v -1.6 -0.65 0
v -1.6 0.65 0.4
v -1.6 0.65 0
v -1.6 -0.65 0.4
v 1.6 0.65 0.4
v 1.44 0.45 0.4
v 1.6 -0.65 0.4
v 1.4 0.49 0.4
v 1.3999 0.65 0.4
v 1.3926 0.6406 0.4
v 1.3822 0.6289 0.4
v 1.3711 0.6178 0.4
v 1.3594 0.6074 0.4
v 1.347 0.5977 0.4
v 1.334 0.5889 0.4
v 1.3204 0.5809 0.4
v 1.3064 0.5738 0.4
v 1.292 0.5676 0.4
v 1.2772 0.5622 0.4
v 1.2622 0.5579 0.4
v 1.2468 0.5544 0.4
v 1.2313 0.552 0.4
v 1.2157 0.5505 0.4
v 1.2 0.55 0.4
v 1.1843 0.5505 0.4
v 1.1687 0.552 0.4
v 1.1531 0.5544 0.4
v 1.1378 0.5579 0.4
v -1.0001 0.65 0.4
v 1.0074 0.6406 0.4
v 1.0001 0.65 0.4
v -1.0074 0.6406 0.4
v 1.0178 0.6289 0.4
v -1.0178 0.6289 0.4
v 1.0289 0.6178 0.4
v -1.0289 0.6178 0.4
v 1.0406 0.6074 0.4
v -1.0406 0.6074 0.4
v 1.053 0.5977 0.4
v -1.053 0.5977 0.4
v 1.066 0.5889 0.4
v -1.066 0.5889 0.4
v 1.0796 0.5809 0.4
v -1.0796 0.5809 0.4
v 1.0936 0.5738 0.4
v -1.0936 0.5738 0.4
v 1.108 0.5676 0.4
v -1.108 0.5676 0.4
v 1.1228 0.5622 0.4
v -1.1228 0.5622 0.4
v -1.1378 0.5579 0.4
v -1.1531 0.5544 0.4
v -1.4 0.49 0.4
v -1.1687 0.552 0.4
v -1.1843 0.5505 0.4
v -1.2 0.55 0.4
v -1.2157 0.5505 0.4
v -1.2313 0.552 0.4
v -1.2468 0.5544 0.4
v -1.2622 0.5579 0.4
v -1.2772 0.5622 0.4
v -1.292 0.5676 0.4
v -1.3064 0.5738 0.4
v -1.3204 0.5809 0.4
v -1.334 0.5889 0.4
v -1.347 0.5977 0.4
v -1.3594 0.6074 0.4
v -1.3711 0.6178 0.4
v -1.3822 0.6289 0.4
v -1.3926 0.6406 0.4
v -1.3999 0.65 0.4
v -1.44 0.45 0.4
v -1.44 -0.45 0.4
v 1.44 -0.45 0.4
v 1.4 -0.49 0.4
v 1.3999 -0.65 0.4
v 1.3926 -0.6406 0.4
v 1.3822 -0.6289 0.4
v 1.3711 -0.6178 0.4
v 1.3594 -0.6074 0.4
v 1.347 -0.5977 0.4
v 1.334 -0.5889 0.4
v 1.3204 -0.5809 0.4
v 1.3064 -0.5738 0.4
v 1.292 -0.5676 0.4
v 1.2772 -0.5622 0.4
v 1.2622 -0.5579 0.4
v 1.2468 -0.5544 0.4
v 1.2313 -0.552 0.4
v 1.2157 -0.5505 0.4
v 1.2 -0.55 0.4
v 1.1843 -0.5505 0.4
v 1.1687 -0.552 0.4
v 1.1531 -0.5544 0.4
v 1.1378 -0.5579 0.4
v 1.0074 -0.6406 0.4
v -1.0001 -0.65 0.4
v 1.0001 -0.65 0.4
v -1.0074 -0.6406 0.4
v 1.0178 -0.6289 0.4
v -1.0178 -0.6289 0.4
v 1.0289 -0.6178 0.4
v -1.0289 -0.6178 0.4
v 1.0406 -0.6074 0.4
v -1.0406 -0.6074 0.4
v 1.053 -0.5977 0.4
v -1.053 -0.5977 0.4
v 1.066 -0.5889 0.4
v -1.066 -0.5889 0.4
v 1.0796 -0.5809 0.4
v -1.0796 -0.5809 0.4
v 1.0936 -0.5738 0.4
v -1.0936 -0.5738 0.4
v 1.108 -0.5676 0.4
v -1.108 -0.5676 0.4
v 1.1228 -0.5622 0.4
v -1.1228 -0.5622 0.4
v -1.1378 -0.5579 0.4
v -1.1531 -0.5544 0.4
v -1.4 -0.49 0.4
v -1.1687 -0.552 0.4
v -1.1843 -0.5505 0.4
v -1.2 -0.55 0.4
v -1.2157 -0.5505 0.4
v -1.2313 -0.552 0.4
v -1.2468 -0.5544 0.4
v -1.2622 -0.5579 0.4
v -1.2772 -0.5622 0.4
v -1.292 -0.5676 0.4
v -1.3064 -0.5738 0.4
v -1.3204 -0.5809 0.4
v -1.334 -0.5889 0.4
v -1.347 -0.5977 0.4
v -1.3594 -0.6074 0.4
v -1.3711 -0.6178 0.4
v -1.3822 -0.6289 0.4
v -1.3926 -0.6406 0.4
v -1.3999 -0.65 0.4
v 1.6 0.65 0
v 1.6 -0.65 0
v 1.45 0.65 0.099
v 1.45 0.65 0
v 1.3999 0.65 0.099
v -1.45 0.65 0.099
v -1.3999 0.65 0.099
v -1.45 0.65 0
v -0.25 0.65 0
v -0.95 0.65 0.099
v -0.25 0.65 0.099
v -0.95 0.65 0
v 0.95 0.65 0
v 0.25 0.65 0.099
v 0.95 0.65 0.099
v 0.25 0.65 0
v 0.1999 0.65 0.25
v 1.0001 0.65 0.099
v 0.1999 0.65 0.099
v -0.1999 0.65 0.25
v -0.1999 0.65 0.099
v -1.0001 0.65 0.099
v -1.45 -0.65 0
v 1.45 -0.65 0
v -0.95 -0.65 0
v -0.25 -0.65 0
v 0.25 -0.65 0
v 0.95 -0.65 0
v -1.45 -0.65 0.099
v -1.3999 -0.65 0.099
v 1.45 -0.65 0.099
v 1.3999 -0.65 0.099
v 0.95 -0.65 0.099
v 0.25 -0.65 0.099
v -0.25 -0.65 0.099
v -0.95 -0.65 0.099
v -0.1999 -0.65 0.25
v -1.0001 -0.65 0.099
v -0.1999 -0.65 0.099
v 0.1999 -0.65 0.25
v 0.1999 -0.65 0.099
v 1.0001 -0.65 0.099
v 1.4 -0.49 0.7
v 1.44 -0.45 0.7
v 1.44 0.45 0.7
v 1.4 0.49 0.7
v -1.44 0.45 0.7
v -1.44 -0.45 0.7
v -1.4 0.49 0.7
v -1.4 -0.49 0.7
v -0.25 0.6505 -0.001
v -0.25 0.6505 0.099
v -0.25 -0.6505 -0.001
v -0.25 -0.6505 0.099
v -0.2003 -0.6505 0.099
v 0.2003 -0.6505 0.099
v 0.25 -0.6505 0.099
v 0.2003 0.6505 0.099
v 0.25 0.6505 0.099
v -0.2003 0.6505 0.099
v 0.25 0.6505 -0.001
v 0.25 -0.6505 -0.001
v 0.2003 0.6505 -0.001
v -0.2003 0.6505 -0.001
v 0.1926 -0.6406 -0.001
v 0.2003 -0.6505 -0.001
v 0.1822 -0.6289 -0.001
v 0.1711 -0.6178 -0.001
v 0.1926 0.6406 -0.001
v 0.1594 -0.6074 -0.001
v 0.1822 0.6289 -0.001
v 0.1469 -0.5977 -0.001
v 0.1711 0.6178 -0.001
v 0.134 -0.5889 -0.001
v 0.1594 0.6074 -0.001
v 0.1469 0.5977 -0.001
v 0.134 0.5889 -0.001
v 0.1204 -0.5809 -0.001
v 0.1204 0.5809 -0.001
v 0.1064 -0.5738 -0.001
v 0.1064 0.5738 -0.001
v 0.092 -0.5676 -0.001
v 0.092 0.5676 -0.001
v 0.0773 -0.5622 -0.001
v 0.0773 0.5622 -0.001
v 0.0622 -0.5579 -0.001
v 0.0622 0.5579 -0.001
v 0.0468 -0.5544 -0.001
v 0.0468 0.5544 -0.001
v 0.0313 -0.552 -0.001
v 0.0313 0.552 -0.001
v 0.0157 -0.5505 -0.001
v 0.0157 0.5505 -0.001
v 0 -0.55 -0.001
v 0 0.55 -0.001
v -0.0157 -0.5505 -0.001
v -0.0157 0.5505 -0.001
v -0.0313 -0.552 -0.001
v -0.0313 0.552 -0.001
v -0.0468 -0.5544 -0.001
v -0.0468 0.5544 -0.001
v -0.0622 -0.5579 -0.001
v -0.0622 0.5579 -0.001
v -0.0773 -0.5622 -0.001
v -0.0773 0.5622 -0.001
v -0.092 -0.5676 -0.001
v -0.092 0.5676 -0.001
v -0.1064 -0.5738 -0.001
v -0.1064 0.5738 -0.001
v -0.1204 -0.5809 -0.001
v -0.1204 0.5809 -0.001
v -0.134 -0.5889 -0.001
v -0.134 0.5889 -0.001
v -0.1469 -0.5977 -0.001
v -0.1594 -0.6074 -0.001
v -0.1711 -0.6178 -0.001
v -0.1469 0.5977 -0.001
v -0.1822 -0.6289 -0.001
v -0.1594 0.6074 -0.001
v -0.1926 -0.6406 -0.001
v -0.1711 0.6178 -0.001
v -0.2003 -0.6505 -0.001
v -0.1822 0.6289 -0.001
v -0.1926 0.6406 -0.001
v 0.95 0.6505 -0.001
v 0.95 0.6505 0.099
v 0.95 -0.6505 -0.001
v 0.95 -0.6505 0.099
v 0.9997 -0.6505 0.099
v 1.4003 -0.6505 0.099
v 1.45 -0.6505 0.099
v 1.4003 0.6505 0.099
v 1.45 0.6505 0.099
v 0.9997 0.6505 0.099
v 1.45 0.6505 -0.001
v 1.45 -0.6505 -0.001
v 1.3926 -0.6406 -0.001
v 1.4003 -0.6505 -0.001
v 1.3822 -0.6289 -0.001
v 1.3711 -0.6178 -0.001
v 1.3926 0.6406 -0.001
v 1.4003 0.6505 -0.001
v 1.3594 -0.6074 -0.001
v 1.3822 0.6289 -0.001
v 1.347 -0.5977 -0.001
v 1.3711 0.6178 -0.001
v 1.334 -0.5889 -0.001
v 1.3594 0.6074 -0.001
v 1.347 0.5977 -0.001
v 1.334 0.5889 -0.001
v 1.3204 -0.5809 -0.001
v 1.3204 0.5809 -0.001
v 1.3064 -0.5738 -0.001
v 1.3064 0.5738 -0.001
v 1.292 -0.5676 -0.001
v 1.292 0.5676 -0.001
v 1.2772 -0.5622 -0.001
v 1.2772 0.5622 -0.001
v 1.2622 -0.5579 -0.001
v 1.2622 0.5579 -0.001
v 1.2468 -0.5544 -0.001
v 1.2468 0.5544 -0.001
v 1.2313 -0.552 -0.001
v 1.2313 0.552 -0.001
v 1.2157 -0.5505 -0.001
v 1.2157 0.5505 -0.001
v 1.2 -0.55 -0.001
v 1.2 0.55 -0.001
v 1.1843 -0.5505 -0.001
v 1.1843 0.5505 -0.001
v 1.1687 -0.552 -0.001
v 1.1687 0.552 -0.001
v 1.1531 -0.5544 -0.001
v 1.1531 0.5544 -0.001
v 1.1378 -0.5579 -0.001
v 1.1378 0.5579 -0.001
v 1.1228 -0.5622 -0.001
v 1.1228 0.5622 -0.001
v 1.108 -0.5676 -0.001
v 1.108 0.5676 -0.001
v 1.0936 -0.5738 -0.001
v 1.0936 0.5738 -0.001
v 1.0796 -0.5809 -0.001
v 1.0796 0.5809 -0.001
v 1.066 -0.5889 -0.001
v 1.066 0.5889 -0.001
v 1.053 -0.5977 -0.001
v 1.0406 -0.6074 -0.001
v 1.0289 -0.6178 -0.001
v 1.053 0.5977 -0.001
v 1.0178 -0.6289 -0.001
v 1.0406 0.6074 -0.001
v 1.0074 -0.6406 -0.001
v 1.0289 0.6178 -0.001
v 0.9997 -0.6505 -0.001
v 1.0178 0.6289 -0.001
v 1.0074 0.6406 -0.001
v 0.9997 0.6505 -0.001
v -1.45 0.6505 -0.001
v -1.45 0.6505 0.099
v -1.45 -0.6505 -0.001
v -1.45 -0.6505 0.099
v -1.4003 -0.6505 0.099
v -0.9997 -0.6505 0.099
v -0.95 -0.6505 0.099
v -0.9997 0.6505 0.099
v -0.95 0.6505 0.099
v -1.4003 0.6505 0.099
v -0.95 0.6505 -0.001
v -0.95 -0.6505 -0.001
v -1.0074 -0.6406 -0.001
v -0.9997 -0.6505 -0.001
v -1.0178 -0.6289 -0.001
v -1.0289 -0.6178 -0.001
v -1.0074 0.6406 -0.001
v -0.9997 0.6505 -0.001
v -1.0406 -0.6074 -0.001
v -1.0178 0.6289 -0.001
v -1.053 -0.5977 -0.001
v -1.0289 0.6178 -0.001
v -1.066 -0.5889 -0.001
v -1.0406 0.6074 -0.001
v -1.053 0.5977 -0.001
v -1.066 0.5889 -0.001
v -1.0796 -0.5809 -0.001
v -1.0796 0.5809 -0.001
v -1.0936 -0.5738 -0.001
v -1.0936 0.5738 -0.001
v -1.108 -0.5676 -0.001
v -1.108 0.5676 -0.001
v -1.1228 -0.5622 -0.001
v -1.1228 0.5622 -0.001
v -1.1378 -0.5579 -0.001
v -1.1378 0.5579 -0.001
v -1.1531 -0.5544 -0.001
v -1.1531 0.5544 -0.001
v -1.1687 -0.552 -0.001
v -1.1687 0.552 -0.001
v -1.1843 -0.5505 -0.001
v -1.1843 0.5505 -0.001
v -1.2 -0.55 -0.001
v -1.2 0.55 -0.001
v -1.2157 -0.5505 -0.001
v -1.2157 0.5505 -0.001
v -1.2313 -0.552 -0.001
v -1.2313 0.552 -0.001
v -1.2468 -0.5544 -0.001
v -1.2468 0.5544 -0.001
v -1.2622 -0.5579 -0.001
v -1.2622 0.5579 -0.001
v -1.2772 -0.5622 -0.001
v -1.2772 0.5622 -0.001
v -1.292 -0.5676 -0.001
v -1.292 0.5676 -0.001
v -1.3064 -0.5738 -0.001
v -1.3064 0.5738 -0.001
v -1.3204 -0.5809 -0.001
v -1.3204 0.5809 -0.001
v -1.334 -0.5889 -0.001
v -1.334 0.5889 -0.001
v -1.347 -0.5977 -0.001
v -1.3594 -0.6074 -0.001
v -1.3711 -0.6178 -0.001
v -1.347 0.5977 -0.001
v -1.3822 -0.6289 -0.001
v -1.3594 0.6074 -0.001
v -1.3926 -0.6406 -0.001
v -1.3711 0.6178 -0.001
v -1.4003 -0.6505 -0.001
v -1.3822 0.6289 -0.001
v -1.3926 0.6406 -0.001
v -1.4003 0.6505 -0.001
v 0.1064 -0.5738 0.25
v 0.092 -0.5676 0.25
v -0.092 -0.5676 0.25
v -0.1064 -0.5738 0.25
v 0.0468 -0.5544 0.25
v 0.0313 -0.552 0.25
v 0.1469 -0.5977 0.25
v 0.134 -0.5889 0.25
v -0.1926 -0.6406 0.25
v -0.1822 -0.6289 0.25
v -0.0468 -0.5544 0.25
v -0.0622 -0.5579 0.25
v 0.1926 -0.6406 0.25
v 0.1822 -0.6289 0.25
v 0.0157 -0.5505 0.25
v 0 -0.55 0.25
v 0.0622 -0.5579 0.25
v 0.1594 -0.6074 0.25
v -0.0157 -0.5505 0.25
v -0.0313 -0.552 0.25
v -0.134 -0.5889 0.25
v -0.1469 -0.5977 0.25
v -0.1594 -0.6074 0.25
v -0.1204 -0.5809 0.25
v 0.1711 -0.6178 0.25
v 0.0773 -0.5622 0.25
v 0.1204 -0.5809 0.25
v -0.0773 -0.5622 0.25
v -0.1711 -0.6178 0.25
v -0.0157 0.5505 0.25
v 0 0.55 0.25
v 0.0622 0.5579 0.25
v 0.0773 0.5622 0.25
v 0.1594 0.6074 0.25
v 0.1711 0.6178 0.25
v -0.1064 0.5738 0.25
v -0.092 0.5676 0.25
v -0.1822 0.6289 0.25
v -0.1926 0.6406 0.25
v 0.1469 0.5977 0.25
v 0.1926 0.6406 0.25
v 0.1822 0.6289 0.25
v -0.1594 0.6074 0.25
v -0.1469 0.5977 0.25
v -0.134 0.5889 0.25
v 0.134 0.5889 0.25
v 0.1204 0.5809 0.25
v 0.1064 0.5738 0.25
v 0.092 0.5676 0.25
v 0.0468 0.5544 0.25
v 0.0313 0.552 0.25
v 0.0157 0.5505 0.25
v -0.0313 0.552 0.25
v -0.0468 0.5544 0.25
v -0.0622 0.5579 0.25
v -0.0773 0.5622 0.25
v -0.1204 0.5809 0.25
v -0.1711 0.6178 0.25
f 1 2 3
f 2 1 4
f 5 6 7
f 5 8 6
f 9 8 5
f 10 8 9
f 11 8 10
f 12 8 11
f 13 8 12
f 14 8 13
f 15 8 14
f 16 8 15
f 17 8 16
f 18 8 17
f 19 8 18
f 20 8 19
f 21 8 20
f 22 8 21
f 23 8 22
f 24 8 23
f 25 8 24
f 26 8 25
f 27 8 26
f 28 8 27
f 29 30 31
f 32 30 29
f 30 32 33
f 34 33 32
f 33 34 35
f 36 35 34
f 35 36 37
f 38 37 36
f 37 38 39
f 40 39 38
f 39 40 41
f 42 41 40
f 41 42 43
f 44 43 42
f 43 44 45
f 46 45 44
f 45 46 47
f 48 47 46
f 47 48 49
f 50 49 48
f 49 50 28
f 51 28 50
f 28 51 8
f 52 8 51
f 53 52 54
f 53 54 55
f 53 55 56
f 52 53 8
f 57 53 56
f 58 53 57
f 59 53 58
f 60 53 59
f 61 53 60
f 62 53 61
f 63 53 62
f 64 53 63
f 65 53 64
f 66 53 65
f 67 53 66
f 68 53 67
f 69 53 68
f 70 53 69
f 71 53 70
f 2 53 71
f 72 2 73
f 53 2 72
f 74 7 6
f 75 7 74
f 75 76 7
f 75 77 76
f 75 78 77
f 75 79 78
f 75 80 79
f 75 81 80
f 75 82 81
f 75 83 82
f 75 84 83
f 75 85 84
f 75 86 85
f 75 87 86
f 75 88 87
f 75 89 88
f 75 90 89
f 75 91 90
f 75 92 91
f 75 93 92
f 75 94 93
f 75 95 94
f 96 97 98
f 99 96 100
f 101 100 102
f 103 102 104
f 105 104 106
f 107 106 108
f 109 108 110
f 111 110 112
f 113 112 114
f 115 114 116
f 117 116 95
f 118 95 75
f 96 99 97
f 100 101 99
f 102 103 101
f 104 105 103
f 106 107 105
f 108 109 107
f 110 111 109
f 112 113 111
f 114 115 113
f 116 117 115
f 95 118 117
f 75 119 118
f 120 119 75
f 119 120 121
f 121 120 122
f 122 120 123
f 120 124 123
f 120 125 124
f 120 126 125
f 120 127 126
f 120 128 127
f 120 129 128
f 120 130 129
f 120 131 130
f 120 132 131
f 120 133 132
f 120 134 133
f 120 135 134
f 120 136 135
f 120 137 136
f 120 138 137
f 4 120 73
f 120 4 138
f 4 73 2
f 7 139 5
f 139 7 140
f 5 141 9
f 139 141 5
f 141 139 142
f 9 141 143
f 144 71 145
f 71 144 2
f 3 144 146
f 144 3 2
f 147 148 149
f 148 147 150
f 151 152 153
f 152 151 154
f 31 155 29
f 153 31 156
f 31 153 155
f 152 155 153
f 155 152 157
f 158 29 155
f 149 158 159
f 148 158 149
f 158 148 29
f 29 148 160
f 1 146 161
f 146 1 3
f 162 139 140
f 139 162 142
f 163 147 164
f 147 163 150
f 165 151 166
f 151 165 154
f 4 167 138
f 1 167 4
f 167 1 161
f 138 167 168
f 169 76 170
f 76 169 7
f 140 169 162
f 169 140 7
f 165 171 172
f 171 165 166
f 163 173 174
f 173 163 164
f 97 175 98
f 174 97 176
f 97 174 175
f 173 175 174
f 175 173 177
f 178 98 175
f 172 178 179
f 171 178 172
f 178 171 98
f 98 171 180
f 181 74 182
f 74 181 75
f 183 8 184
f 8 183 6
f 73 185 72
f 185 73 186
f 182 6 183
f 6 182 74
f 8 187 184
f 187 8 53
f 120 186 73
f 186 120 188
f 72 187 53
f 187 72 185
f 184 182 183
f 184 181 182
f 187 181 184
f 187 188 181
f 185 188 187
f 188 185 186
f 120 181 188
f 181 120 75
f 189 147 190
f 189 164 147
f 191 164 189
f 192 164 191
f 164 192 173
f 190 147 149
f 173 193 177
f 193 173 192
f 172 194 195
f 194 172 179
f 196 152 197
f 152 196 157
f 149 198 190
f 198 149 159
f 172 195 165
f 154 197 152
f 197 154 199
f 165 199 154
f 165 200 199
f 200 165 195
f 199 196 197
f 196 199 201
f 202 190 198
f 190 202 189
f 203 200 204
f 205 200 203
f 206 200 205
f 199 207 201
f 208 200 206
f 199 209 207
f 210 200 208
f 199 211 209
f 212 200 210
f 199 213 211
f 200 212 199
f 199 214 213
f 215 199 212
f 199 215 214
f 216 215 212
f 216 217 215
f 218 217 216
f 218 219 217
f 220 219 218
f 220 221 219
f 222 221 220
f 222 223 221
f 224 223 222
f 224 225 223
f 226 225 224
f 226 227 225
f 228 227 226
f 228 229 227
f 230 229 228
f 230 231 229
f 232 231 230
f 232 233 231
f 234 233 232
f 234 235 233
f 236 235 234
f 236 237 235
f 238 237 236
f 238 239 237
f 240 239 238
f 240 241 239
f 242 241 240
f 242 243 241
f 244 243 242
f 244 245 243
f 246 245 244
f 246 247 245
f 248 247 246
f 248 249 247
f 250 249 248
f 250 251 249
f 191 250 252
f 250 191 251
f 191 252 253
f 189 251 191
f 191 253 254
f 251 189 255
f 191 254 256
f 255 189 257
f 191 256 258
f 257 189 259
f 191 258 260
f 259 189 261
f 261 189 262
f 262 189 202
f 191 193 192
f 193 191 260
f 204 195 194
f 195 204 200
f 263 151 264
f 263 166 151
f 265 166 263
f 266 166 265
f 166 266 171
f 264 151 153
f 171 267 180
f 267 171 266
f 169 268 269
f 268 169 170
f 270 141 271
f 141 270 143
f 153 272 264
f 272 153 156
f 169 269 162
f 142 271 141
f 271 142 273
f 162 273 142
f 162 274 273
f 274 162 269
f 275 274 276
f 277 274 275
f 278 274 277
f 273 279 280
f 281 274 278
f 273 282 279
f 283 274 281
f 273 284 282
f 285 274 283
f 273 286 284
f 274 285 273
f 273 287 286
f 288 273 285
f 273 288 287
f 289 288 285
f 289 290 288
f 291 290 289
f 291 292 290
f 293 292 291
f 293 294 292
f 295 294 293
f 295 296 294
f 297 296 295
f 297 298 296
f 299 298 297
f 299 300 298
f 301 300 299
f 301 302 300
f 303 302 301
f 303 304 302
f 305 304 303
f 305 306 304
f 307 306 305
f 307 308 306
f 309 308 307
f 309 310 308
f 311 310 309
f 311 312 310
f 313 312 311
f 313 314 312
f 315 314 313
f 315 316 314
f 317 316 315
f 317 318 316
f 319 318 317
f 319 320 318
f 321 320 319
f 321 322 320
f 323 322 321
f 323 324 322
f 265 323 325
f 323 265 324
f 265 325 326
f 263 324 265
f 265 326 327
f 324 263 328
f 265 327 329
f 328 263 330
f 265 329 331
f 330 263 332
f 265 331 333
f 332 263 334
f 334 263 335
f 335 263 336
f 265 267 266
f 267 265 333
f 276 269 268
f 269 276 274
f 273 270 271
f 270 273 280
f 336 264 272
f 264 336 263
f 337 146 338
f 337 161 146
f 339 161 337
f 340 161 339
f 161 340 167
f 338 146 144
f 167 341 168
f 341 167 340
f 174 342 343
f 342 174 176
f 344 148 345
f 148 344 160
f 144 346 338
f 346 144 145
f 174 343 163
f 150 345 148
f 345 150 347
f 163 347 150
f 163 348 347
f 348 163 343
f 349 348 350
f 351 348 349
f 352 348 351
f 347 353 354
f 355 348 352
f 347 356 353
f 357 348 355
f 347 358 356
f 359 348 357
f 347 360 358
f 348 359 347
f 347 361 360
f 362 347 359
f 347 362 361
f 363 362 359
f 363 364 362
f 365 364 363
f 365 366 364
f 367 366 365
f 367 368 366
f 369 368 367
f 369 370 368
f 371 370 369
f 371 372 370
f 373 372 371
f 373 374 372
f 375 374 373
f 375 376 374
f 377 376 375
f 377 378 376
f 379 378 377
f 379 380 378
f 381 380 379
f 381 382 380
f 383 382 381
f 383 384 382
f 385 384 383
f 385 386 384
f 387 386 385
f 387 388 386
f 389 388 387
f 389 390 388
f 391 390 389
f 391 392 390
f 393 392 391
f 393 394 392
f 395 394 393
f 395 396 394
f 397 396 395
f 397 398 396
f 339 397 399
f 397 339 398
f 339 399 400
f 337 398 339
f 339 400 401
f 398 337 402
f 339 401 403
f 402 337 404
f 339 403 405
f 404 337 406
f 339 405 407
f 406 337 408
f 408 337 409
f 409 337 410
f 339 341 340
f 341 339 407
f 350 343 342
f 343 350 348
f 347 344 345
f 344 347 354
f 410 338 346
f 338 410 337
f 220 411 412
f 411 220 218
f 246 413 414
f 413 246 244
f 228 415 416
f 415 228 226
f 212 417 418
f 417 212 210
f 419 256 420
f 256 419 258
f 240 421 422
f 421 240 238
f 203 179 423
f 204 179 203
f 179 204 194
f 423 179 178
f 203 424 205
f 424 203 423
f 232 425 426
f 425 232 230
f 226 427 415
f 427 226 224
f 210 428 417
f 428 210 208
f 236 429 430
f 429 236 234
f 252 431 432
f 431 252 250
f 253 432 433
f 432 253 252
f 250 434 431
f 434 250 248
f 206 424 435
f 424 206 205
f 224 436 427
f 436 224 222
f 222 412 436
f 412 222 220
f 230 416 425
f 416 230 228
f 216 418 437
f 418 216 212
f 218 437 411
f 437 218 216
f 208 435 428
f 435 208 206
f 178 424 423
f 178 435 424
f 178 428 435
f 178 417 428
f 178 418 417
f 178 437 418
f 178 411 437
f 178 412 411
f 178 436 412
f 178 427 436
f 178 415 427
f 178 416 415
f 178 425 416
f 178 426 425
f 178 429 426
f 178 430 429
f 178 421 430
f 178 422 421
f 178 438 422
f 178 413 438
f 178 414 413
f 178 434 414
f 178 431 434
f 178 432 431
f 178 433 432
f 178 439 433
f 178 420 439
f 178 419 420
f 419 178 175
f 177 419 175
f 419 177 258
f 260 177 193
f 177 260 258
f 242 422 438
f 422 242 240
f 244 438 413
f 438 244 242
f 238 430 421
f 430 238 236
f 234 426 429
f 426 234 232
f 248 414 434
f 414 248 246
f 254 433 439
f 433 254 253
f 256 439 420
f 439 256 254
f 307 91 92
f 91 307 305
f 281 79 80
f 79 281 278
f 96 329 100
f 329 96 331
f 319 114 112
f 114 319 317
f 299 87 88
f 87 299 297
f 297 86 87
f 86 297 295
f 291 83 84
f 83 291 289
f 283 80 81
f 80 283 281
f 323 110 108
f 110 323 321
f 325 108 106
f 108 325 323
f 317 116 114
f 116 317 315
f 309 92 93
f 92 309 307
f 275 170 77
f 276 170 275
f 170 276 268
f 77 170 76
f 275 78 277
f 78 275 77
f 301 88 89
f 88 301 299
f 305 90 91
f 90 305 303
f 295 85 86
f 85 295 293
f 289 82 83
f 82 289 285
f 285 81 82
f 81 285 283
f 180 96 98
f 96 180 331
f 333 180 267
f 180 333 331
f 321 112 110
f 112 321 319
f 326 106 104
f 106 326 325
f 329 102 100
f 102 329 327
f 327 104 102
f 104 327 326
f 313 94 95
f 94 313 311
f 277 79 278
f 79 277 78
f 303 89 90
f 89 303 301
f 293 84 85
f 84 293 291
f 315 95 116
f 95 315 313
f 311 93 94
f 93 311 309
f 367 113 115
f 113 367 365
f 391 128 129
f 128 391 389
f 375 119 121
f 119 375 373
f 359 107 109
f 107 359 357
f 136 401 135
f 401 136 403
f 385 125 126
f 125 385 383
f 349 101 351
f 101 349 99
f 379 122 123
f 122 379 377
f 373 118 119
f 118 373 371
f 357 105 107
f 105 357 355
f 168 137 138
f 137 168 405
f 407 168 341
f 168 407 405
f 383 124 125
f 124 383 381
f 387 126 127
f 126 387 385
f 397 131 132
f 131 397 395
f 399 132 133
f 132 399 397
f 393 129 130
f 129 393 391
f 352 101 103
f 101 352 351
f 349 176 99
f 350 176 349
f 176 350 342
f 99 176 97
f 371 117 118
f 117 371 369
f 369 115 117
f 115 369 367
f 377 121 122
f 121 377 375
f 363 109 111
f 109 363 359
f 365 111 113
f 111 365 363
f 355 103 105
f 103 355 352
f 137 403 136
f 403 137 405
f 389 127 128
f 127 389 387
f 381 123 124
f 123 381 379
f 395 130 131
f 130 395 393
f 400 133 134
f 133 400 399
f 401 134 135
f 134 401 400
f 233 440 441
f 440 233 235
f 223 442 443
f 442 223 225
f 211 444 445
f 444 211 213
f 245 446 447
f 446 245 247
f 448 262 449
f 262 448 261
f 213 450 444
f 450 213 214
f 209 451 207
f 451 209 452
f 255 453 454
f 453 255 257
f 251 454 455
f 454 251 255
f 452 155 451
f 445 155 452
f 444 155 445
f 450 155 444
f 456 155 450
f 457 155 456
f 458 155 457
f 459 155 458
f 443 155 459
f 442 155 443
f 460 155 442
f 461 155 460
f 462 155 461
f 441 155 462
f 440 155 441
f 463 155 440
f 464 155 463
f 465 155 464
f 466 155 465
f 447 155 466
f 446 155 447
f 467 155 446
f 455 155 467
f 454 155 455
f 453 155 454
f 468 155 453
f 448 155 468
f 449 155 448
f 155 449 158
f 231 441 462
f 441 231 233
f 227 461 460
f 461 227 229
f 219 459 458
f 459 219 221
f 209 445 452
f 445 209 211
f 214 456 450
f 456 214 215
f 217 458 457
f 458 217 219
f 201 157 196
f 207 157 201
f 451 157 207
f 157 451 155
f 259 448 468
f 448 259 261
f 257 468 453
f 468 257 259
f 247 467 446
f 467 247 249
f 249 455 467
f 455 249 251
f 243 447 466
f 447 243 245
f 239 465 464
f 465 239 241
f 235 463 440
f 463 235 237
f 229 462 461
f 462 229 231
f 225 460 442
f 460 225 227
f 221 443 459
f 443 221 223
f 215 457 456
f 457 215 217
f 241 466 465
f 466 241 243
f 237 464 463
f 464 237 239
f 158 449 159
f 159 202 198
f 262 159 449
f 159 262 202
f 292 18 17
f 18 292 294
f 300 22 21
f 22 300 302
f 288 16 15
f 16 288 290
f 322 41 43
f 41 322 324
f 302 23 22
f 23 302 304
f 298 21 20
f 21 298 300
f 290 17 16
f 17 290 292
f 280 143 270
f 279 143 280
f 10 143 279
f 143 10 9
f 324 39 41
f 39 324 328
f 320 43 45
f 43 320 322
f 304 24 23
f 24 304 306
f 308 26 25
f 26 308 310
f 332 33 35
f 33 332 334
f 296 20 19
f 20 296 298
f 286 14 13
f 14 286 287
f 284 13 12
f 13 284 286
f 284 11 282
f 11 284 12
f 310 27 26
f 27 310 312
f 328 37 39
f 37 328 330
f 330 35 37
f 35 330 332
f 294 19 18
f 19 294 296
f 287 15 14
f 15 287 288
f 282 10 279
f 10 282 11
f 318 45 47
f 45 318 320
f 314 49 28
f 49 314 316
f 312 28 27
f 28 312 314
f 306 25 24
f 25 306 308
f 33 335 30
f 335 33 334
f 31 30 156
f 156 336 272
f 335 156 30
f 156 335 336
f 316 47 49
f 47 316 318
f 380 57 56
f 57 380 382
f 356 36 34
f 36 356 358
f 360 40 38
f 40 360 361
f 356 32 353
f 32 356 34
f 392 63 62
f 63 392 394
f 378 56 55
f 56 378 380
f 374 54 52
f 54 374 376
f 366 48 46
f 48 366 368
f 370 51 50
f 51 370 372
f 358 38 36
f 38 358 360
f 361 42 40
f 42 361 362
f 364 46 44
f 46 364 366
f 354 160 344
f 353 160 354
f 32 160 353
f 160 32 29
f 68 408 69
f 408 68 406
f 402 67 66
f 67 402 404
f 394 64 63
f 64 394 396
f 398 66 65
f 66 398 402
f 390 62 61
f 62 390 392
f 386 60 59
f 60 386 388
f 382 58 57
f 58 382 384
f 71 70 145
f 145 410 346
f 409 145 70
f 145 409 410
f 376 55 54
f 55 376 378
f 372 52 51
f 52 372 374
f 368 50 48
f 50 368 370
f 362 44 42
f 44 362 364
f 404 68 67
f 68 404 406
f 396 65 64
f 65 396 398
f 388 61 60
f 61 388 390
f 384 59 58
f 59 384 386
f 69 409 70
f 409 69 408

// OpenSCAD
$fs=0.3;
$fa=0.3;
difference(){
    union(){
        body();
        translate([0,0,0.049])cube([0.5,1.301,0.1],center=true);
        translate([1.2,0,0.049])cube([0.5,1.301,0.1],center=true);
        translate([-1.2,0,0.049])cube([0.5,1.301,0.1],center=true);
    }
    color("gold"){
        translate([0,-0.8,-0.1])cylinder($fn=100,r=0.25,h=0.35);
        translate([1.2,-0.8,-0.1])cylinder($fn=100,r=0.25,h=0.6);
        translate([-1.2,-0.8,-0.1])cylinder($fn=100,r=0.25,h=0.6);
        translate([0,0.8,-0.1])cylinder($fn=100,r=0.25,h=0.35);
        translate([1.2,0.8,-0.1])cylinder($fn=100,r=0.25,h=0.6);
        translate([-1.2,0.8,-0.1])cylinder($fn=100,r=0.25,h=0.6);
    }
}

module body(){
    translate([0,0,0.2])
    color("silver")cube([3.2,1.3,0.4],center=true);
color("gray")translate([0,0,0.4])
linear_extrude(height=0.3)offset(r=.04)square([2.8,0.9],center=true);
}
